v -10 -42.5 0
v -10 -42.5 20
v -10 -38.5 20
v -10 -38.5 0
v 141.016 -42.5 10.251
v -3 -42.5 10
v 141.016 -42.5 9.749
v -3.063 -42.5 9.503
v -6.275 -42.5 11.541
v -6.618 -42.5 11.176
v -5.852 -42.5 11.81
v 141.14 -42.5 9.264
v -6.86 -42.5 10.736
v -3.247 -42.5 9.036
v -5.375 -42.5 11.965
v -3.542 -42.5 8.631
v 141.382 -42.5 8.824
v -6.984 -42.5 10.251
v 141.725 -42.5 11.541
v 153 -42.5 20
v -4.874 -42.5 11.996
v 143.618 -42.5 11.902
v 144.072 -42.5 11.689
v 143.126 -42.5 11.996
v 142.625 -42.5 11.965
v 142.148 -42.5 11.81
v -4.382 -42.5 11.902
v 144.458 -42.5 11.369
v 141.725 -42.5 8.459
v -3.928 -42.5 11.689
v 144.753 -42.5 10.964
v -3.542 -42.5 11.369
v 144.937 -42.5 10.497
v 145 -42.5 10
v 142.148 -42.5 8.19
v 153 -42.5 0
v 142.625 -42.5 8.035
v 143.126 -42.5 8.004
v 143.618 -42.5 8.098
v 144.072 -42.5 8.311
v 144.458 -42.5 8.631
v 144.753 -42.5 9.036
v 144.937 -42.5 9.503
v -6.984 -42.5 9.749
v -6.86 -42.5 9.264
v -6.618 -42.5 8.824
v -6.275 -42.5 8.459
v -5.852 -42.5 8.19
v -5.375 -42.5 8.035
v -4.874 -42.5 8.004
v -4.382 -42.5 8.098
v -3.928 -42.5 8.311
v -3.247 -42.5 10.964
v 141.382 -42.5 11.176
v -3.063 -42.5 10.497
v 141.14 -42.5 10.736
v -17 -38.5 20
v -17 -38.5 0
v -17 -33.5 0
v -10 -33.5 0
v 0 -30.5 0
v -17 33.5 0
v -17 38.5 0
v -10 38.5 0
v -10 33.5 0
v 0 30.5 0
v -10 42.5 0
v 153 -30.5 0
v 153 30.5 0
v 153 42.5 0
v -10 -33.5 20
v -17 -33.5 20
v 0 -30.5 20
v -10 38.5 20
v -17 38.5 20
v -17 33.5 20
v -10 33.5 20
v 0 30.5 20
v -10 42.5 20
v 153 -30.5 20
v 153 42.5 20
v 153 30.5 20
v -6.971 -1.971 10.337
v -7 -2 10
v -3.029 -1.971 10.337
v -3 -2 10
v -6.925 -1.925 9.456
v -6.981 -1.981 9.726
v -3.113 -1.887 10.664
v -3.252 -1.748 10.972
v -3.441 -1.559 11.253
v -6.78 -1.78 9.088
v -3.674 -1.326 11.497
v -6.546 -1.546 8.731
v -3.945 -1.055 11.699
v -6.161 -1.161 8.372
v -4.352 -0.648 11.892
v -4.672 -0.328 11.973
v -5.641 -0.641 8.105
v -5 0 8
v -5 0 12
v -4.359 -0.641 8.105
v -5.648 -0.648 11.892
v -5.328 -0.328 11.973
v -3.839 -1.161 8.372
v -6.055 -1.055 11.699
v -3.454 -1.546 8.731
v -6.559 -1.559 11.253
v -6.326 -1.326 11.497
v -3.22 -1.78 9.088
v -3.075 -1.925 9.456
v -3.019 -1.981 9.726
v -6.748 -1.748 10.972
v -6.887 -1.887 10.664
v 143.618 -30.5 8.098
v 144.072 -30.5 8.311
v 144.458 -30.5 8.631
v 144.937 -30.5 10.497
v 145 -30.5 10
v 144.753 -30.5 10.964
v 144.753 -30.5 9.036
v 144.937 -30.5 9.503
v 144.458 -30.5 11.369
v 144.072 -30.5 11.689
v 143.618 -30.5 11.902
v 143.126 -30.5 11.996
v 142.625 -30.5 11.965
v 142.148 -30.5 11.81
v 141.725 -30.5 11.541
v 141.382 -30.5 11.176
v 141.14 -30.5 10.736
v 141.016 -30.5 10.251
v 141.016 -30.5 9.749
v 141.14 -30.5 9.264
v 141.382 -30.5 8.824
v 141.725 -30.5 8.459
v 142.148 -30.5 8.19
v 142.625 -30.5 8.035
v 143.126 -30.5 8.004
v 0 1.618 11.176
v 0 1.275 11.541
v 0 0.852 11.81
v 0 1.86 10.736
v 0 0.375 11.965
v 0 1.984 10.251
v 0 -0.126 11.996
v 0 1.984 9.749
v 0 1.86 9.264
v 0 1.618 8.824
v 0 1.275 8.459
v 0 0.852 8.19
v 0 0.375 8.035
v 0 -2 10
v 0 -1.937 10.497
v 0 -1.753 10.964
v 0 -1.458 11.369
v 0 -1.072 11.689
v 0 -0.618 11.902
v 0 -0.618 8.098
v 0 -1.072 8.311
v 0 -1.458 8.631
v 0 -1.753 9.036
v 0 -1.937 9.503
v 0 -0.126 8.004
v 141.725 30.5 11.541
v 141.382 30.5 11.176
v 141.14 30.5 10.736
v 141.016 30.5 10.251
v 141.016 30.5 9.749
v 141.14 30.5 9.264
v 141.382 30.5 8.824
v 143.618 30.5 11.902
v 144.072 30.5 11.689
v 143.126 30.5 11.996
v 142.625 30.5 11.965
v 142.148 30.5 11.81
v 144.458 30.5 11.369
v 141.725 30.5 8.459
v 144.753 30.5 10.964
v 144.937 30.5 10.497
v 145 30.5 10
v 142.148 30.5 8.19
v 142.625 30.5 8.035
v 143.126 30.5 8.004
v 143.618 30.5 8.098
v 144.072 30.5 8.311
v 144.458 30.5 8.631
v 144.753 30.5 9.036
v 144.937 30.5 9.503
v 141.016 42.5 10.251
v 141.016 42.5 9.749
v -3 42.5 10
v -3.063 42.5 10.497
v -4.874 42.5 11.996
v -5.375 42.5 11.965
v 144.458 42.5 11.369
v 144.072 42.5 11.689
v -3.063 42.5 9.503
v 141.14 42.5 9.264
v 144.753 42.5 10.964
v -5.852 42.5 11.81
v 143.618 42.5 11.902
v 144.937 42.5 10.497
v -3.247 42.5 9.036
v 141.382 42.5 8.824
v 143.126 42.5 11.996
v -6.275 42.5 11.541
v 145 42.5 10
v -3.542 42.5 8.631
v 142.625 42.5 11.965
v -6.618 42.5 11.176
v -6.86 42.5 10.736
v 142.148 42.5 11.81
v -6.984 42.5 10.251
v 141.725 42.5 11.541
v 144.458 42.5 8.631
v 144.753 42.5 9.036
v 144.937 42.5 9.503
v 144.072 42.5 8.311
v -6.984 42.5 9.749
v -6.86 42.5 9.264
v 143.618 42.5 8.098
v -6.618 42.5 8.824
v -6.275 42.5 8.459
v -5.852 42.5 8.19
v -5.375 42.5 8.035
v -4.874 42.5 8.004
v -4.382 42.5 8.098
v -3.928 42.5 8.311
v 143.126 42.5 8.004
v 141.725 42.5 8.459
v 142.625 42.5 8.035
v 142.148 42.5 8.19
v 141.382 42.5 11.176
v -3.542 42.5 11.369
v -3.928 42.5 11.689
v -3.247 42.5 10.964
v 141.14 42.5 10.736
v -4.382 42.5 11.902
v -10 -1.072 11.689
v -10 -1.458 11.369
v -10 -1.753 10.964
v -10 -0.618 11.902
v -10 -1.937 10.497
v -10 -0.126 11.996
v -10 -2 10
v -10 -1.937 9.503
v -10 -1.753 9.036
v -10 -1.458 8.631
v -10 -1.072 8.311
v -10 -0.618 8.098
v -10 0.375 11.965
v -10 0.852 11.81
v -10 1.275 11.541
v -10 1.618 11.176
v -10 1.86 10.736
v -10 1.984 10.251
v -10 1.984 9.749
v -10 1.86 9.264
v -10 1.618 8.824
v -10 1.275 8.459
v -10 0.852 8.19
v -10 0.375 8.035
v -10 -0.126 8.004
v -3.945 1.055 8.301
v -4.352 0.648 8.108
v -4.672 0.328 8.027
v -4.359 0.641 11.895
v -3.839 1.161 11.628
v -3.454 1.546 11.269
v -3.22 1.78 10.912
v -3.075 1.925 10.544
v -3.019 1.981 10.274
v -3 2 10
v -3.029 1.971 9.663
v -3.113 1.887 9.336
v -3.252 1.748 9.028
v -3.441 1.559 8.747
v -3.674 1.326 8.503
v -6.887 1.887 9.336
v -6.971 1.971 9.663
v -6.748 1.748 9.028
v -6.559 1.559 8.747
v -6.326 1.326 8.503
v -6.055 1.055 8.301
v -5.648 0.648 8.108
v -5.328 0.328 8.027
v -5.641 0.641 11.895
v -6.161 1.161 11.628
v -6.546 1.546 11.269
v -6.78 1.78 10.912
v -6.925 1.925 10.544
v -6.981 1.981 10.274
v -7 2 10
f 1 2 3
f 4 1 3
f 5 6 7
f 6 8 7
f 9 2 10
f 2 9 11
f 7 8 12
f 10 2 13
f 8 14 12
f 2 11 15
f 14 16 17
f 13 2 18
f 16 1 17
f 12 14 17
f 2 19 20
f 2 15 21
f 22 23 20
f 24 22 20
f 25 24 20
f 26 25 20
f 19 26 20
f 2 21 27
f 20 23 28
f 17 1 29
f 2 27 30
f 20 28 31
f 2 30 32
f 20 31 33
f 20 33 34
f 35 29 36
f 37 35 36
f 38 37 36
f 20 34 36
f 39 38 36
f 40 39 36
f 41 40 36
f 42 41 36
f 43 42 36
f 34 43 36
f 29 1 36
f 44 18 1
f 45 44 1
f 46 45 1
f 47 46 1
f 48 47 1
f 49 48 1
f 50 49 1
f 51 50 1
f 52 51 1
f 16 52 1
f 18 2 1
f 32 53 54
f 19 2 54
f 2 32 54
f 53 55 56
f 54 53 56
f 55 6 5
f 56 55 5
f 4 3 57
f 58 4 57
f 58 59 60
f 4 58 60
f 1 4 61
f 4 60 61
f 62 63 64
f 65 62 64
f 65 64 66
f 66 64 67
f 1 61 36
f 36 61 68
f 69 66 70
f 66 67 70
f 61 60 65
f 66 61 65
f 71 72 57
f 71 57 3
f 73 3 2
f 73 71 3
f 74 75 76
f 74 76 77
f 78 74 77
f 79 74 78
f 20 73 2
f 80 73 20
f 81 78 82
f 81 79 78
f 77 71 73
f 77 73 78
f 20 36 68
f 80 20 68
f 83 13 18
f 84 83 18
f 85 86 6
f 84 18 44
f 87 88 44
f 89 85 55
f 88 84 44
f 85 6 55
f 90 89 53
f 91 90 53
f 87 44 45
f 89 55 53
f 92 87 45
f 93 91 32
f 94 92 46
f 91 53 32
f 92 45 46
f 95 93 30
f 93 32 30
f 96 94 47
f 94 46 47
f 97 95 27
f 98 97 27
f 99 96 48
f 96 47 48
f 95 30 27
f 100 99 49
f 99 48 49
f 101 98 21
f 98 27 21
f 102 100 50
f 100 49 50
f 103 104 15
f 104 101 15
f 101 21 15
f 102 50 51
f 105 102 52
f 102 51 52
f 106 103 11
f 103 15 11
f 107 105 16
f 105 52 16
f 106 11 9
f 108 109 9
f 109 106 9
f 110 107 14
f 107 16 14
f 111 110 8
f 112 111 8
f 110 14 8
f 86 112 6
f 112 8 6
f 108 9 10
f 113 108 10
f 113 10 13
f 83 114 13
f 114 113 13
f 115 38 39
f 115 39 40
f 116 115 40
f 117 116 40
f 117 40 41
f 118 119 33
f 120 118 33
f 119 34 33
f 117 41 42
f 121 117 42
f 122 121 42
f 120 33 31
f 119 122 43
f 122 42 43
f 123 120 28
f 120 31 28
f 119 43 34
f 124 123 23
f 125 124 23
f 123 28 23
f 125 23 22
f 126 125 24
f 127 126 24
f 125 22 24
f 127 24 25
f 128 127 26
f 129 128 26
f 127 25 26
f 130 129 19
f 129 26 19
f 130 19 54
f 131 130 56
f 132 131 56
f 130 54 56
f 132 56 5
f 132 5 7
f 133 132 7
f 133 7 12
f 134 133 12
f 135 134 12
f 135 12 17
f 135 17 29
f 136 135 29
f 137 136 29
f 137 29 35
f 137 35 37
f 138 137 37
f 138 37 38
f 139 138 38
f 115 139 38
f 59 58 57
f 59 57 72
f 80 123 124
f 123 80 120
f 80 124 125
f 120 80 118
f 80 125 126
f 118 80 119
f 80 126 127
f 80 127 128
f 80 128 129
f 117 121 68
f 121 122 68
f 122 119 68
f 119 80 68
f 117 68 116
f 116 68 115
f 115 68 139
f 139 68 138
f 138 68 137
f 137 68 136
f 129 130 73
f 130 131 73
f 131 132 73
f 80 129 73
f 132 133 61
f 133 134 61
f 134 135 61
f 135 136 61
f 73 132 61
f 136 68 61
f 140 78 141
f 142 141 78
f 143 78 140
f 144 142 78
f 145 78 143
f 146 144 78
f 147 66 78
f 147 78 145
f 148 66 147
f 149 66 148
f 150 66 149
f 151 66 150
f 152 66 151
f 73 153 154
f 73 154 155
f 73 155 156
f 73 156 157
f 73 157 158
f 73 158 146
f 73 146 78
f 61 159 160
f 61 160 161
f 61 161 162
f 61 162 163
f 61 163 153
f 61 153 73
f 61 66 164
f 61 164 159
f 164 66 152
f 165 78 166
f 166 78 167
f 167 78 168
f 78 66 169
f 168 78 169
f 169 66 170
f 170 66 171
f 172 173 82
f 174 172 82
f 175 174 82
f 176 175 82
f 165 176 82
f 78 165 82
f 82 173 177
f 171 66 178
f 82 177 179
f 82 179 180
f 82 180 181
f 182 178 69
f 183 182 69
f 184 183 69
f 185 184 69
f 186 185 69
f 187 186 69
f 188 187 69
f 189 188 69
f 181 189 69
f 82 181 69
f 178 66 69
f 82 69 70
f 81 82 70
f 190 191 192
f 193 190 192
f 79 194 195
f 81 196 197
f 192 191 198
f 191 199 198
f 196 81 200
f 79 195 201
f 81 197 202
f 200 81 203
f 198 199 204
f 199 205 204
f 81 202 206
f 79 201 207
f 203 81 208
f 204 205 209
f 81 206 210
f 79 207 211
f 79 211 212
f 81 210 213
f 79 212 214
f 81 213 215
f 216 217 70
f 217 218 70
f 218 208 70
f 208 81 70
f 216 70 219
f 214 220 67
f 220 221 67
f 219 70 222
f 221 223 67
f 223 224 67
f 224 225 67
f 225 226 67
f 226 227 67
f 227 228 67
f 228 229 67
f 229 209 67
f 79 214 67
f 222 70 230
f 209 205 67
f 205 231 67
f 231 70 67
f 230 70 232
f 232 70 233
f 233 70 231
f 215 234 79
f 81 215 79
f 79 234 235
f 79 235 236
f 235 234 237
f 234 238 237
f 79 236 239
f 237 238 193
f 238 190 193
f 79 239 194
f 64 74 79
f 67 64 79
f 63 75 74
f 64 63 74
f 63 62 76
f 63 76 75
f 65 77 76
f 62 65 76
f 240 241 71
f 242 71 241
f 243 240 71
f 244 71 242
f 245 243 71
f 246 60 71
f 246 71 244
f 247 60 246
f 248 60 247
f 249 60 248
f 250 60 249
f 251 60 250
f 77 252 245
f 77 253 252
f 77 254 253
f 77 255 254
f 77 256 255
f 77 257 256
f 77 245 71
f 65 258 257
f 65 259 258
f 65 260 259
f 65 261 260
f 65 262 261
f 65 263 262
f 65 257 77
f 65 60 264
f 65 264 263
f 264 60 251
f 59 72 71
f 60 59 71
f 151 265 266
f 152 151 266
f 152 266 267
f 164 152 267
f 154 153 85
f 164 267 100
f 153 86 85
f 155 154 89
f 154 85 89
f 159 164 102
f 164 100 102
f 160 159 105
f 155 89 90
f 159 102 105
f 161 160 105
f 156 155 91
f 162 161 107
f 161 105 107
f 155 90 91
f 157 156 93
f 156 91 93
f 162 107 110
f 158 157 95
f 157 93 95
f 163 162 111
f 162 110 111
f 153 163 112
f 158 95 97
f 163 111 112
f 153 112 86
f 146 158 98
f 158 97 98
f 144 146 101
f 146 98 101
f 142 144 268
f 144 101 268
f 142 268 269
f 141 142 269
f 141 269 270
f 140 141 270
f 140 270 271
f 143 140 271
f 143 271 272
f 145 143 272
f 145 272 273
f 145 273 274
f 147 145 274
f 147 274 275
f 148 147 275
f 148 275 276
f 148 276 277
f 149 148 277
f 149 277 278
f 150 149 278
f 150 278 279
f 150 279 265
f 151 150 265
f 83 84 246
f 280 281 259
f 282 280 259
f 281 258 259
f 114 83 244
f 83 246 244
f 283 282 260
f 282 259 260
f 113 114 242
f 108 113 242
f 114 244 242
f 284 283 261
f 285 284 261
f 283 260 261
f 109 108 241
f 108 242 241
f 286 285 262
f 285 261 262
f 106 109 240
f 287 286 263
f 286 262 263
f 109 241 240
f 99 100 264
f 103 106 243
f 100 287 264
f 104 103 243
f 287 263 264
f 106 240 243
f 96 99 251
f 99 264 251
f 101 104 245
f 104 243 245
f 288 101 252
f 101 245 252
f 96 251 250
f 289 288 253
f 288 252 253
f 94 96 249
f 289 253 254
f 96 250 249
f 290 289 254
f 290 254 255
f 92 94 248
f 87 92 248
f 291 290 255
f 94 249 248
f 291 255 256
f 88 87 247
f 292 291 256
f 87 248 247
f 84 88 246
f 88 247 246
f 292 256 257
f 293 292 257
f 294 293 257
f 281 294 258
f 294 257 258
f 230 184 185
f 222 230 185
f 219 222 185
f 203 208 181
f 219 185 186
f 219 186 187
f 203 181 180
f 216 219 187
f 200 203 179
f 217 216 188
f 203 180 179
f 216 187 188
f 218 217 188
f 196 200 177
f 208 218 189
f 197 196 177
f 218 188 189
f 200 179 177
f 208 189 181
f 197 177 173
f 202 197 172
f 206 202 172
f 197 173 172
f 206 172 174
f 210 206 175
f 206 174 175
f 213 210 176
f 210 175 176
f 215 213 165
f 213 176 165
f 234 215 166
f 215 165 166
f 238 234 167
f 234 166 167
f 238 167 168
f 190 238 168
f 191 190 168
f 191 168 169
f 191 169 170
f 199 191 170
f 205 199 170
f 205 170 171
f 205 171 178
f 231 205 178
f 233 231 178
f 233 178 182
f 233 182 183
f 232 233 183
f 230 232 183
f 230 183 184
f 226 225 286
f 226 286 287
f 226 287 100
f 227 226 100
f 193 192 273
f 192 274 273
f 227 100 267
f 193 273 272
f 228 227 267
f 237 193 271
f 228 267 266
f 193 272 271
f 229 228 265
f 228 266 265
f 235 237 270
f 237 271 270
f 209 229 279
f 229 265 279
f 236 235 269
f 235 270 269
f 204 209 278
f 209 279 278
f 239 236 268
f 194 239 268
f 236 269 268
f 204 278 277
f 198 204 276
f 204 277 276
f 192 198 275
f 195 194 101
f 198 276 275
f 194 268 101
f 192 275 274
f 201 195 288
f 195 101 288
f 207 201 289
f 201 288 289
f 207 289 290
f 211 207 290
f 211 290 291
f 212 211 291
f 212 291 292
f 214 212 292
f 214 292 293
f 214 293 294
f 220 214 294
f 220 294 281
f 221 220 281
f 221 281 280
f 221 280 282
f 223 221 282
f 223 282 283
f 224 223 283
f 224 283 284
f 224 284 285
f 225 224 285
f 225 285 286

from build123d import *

# Parameters (mm, degrees)
PAD_DEPTH       = 20
SKETCH004_R     = 2
POCKET002_DEPTH = 163.001
SKETCH005_R     = 2
POCKET003_DEPTH = 85.001


with BuildPart() as part:
    # Sketch → Pad (new body)
    with BuildSketch(Plane.XY):
        Polygon((-10, -42.5), (153, -42.5), (153, -30.5), (0, -30.5), (0, 30.5), (153, 30.5), (153, 42.5), (-10, 42.5), (-10, 38.5), (-17, 38.5), (-17, 33.5), (-10, 33.5), (-10, -33.5), (-17, -33.5), (-17, -38.5), (-10, -38.5), align=None)
    extrude(amount=PAD_DEPTH)

    # Sketch004 → Pocket002 (cut, through all)
    with BuildSketch(Plane(origin=(-10, 0, 0), x_dir=(0, -1, 0), z_dir=(-1, 0, 0))):
        with Locations((0, 10)):
            Circle(SKETCH004_R)
    extrude(amount=-POCKET002_DEPTH, mode=Mode.SUBTRACT)

    # Sketch005 → Pocket003 (cut, through all)
    with BuildSketch(Plane.XZ.offset(42.5)):
        with Locations((-5, 10)):
            Circle(SKETCH005_R)
        with Locations((143, 10)):
            Circle(SKETCH005_R)
    extrude(amount=-POCKET003_DEPTH, mode=Mode.SUBTRACT)


solid = part.part
